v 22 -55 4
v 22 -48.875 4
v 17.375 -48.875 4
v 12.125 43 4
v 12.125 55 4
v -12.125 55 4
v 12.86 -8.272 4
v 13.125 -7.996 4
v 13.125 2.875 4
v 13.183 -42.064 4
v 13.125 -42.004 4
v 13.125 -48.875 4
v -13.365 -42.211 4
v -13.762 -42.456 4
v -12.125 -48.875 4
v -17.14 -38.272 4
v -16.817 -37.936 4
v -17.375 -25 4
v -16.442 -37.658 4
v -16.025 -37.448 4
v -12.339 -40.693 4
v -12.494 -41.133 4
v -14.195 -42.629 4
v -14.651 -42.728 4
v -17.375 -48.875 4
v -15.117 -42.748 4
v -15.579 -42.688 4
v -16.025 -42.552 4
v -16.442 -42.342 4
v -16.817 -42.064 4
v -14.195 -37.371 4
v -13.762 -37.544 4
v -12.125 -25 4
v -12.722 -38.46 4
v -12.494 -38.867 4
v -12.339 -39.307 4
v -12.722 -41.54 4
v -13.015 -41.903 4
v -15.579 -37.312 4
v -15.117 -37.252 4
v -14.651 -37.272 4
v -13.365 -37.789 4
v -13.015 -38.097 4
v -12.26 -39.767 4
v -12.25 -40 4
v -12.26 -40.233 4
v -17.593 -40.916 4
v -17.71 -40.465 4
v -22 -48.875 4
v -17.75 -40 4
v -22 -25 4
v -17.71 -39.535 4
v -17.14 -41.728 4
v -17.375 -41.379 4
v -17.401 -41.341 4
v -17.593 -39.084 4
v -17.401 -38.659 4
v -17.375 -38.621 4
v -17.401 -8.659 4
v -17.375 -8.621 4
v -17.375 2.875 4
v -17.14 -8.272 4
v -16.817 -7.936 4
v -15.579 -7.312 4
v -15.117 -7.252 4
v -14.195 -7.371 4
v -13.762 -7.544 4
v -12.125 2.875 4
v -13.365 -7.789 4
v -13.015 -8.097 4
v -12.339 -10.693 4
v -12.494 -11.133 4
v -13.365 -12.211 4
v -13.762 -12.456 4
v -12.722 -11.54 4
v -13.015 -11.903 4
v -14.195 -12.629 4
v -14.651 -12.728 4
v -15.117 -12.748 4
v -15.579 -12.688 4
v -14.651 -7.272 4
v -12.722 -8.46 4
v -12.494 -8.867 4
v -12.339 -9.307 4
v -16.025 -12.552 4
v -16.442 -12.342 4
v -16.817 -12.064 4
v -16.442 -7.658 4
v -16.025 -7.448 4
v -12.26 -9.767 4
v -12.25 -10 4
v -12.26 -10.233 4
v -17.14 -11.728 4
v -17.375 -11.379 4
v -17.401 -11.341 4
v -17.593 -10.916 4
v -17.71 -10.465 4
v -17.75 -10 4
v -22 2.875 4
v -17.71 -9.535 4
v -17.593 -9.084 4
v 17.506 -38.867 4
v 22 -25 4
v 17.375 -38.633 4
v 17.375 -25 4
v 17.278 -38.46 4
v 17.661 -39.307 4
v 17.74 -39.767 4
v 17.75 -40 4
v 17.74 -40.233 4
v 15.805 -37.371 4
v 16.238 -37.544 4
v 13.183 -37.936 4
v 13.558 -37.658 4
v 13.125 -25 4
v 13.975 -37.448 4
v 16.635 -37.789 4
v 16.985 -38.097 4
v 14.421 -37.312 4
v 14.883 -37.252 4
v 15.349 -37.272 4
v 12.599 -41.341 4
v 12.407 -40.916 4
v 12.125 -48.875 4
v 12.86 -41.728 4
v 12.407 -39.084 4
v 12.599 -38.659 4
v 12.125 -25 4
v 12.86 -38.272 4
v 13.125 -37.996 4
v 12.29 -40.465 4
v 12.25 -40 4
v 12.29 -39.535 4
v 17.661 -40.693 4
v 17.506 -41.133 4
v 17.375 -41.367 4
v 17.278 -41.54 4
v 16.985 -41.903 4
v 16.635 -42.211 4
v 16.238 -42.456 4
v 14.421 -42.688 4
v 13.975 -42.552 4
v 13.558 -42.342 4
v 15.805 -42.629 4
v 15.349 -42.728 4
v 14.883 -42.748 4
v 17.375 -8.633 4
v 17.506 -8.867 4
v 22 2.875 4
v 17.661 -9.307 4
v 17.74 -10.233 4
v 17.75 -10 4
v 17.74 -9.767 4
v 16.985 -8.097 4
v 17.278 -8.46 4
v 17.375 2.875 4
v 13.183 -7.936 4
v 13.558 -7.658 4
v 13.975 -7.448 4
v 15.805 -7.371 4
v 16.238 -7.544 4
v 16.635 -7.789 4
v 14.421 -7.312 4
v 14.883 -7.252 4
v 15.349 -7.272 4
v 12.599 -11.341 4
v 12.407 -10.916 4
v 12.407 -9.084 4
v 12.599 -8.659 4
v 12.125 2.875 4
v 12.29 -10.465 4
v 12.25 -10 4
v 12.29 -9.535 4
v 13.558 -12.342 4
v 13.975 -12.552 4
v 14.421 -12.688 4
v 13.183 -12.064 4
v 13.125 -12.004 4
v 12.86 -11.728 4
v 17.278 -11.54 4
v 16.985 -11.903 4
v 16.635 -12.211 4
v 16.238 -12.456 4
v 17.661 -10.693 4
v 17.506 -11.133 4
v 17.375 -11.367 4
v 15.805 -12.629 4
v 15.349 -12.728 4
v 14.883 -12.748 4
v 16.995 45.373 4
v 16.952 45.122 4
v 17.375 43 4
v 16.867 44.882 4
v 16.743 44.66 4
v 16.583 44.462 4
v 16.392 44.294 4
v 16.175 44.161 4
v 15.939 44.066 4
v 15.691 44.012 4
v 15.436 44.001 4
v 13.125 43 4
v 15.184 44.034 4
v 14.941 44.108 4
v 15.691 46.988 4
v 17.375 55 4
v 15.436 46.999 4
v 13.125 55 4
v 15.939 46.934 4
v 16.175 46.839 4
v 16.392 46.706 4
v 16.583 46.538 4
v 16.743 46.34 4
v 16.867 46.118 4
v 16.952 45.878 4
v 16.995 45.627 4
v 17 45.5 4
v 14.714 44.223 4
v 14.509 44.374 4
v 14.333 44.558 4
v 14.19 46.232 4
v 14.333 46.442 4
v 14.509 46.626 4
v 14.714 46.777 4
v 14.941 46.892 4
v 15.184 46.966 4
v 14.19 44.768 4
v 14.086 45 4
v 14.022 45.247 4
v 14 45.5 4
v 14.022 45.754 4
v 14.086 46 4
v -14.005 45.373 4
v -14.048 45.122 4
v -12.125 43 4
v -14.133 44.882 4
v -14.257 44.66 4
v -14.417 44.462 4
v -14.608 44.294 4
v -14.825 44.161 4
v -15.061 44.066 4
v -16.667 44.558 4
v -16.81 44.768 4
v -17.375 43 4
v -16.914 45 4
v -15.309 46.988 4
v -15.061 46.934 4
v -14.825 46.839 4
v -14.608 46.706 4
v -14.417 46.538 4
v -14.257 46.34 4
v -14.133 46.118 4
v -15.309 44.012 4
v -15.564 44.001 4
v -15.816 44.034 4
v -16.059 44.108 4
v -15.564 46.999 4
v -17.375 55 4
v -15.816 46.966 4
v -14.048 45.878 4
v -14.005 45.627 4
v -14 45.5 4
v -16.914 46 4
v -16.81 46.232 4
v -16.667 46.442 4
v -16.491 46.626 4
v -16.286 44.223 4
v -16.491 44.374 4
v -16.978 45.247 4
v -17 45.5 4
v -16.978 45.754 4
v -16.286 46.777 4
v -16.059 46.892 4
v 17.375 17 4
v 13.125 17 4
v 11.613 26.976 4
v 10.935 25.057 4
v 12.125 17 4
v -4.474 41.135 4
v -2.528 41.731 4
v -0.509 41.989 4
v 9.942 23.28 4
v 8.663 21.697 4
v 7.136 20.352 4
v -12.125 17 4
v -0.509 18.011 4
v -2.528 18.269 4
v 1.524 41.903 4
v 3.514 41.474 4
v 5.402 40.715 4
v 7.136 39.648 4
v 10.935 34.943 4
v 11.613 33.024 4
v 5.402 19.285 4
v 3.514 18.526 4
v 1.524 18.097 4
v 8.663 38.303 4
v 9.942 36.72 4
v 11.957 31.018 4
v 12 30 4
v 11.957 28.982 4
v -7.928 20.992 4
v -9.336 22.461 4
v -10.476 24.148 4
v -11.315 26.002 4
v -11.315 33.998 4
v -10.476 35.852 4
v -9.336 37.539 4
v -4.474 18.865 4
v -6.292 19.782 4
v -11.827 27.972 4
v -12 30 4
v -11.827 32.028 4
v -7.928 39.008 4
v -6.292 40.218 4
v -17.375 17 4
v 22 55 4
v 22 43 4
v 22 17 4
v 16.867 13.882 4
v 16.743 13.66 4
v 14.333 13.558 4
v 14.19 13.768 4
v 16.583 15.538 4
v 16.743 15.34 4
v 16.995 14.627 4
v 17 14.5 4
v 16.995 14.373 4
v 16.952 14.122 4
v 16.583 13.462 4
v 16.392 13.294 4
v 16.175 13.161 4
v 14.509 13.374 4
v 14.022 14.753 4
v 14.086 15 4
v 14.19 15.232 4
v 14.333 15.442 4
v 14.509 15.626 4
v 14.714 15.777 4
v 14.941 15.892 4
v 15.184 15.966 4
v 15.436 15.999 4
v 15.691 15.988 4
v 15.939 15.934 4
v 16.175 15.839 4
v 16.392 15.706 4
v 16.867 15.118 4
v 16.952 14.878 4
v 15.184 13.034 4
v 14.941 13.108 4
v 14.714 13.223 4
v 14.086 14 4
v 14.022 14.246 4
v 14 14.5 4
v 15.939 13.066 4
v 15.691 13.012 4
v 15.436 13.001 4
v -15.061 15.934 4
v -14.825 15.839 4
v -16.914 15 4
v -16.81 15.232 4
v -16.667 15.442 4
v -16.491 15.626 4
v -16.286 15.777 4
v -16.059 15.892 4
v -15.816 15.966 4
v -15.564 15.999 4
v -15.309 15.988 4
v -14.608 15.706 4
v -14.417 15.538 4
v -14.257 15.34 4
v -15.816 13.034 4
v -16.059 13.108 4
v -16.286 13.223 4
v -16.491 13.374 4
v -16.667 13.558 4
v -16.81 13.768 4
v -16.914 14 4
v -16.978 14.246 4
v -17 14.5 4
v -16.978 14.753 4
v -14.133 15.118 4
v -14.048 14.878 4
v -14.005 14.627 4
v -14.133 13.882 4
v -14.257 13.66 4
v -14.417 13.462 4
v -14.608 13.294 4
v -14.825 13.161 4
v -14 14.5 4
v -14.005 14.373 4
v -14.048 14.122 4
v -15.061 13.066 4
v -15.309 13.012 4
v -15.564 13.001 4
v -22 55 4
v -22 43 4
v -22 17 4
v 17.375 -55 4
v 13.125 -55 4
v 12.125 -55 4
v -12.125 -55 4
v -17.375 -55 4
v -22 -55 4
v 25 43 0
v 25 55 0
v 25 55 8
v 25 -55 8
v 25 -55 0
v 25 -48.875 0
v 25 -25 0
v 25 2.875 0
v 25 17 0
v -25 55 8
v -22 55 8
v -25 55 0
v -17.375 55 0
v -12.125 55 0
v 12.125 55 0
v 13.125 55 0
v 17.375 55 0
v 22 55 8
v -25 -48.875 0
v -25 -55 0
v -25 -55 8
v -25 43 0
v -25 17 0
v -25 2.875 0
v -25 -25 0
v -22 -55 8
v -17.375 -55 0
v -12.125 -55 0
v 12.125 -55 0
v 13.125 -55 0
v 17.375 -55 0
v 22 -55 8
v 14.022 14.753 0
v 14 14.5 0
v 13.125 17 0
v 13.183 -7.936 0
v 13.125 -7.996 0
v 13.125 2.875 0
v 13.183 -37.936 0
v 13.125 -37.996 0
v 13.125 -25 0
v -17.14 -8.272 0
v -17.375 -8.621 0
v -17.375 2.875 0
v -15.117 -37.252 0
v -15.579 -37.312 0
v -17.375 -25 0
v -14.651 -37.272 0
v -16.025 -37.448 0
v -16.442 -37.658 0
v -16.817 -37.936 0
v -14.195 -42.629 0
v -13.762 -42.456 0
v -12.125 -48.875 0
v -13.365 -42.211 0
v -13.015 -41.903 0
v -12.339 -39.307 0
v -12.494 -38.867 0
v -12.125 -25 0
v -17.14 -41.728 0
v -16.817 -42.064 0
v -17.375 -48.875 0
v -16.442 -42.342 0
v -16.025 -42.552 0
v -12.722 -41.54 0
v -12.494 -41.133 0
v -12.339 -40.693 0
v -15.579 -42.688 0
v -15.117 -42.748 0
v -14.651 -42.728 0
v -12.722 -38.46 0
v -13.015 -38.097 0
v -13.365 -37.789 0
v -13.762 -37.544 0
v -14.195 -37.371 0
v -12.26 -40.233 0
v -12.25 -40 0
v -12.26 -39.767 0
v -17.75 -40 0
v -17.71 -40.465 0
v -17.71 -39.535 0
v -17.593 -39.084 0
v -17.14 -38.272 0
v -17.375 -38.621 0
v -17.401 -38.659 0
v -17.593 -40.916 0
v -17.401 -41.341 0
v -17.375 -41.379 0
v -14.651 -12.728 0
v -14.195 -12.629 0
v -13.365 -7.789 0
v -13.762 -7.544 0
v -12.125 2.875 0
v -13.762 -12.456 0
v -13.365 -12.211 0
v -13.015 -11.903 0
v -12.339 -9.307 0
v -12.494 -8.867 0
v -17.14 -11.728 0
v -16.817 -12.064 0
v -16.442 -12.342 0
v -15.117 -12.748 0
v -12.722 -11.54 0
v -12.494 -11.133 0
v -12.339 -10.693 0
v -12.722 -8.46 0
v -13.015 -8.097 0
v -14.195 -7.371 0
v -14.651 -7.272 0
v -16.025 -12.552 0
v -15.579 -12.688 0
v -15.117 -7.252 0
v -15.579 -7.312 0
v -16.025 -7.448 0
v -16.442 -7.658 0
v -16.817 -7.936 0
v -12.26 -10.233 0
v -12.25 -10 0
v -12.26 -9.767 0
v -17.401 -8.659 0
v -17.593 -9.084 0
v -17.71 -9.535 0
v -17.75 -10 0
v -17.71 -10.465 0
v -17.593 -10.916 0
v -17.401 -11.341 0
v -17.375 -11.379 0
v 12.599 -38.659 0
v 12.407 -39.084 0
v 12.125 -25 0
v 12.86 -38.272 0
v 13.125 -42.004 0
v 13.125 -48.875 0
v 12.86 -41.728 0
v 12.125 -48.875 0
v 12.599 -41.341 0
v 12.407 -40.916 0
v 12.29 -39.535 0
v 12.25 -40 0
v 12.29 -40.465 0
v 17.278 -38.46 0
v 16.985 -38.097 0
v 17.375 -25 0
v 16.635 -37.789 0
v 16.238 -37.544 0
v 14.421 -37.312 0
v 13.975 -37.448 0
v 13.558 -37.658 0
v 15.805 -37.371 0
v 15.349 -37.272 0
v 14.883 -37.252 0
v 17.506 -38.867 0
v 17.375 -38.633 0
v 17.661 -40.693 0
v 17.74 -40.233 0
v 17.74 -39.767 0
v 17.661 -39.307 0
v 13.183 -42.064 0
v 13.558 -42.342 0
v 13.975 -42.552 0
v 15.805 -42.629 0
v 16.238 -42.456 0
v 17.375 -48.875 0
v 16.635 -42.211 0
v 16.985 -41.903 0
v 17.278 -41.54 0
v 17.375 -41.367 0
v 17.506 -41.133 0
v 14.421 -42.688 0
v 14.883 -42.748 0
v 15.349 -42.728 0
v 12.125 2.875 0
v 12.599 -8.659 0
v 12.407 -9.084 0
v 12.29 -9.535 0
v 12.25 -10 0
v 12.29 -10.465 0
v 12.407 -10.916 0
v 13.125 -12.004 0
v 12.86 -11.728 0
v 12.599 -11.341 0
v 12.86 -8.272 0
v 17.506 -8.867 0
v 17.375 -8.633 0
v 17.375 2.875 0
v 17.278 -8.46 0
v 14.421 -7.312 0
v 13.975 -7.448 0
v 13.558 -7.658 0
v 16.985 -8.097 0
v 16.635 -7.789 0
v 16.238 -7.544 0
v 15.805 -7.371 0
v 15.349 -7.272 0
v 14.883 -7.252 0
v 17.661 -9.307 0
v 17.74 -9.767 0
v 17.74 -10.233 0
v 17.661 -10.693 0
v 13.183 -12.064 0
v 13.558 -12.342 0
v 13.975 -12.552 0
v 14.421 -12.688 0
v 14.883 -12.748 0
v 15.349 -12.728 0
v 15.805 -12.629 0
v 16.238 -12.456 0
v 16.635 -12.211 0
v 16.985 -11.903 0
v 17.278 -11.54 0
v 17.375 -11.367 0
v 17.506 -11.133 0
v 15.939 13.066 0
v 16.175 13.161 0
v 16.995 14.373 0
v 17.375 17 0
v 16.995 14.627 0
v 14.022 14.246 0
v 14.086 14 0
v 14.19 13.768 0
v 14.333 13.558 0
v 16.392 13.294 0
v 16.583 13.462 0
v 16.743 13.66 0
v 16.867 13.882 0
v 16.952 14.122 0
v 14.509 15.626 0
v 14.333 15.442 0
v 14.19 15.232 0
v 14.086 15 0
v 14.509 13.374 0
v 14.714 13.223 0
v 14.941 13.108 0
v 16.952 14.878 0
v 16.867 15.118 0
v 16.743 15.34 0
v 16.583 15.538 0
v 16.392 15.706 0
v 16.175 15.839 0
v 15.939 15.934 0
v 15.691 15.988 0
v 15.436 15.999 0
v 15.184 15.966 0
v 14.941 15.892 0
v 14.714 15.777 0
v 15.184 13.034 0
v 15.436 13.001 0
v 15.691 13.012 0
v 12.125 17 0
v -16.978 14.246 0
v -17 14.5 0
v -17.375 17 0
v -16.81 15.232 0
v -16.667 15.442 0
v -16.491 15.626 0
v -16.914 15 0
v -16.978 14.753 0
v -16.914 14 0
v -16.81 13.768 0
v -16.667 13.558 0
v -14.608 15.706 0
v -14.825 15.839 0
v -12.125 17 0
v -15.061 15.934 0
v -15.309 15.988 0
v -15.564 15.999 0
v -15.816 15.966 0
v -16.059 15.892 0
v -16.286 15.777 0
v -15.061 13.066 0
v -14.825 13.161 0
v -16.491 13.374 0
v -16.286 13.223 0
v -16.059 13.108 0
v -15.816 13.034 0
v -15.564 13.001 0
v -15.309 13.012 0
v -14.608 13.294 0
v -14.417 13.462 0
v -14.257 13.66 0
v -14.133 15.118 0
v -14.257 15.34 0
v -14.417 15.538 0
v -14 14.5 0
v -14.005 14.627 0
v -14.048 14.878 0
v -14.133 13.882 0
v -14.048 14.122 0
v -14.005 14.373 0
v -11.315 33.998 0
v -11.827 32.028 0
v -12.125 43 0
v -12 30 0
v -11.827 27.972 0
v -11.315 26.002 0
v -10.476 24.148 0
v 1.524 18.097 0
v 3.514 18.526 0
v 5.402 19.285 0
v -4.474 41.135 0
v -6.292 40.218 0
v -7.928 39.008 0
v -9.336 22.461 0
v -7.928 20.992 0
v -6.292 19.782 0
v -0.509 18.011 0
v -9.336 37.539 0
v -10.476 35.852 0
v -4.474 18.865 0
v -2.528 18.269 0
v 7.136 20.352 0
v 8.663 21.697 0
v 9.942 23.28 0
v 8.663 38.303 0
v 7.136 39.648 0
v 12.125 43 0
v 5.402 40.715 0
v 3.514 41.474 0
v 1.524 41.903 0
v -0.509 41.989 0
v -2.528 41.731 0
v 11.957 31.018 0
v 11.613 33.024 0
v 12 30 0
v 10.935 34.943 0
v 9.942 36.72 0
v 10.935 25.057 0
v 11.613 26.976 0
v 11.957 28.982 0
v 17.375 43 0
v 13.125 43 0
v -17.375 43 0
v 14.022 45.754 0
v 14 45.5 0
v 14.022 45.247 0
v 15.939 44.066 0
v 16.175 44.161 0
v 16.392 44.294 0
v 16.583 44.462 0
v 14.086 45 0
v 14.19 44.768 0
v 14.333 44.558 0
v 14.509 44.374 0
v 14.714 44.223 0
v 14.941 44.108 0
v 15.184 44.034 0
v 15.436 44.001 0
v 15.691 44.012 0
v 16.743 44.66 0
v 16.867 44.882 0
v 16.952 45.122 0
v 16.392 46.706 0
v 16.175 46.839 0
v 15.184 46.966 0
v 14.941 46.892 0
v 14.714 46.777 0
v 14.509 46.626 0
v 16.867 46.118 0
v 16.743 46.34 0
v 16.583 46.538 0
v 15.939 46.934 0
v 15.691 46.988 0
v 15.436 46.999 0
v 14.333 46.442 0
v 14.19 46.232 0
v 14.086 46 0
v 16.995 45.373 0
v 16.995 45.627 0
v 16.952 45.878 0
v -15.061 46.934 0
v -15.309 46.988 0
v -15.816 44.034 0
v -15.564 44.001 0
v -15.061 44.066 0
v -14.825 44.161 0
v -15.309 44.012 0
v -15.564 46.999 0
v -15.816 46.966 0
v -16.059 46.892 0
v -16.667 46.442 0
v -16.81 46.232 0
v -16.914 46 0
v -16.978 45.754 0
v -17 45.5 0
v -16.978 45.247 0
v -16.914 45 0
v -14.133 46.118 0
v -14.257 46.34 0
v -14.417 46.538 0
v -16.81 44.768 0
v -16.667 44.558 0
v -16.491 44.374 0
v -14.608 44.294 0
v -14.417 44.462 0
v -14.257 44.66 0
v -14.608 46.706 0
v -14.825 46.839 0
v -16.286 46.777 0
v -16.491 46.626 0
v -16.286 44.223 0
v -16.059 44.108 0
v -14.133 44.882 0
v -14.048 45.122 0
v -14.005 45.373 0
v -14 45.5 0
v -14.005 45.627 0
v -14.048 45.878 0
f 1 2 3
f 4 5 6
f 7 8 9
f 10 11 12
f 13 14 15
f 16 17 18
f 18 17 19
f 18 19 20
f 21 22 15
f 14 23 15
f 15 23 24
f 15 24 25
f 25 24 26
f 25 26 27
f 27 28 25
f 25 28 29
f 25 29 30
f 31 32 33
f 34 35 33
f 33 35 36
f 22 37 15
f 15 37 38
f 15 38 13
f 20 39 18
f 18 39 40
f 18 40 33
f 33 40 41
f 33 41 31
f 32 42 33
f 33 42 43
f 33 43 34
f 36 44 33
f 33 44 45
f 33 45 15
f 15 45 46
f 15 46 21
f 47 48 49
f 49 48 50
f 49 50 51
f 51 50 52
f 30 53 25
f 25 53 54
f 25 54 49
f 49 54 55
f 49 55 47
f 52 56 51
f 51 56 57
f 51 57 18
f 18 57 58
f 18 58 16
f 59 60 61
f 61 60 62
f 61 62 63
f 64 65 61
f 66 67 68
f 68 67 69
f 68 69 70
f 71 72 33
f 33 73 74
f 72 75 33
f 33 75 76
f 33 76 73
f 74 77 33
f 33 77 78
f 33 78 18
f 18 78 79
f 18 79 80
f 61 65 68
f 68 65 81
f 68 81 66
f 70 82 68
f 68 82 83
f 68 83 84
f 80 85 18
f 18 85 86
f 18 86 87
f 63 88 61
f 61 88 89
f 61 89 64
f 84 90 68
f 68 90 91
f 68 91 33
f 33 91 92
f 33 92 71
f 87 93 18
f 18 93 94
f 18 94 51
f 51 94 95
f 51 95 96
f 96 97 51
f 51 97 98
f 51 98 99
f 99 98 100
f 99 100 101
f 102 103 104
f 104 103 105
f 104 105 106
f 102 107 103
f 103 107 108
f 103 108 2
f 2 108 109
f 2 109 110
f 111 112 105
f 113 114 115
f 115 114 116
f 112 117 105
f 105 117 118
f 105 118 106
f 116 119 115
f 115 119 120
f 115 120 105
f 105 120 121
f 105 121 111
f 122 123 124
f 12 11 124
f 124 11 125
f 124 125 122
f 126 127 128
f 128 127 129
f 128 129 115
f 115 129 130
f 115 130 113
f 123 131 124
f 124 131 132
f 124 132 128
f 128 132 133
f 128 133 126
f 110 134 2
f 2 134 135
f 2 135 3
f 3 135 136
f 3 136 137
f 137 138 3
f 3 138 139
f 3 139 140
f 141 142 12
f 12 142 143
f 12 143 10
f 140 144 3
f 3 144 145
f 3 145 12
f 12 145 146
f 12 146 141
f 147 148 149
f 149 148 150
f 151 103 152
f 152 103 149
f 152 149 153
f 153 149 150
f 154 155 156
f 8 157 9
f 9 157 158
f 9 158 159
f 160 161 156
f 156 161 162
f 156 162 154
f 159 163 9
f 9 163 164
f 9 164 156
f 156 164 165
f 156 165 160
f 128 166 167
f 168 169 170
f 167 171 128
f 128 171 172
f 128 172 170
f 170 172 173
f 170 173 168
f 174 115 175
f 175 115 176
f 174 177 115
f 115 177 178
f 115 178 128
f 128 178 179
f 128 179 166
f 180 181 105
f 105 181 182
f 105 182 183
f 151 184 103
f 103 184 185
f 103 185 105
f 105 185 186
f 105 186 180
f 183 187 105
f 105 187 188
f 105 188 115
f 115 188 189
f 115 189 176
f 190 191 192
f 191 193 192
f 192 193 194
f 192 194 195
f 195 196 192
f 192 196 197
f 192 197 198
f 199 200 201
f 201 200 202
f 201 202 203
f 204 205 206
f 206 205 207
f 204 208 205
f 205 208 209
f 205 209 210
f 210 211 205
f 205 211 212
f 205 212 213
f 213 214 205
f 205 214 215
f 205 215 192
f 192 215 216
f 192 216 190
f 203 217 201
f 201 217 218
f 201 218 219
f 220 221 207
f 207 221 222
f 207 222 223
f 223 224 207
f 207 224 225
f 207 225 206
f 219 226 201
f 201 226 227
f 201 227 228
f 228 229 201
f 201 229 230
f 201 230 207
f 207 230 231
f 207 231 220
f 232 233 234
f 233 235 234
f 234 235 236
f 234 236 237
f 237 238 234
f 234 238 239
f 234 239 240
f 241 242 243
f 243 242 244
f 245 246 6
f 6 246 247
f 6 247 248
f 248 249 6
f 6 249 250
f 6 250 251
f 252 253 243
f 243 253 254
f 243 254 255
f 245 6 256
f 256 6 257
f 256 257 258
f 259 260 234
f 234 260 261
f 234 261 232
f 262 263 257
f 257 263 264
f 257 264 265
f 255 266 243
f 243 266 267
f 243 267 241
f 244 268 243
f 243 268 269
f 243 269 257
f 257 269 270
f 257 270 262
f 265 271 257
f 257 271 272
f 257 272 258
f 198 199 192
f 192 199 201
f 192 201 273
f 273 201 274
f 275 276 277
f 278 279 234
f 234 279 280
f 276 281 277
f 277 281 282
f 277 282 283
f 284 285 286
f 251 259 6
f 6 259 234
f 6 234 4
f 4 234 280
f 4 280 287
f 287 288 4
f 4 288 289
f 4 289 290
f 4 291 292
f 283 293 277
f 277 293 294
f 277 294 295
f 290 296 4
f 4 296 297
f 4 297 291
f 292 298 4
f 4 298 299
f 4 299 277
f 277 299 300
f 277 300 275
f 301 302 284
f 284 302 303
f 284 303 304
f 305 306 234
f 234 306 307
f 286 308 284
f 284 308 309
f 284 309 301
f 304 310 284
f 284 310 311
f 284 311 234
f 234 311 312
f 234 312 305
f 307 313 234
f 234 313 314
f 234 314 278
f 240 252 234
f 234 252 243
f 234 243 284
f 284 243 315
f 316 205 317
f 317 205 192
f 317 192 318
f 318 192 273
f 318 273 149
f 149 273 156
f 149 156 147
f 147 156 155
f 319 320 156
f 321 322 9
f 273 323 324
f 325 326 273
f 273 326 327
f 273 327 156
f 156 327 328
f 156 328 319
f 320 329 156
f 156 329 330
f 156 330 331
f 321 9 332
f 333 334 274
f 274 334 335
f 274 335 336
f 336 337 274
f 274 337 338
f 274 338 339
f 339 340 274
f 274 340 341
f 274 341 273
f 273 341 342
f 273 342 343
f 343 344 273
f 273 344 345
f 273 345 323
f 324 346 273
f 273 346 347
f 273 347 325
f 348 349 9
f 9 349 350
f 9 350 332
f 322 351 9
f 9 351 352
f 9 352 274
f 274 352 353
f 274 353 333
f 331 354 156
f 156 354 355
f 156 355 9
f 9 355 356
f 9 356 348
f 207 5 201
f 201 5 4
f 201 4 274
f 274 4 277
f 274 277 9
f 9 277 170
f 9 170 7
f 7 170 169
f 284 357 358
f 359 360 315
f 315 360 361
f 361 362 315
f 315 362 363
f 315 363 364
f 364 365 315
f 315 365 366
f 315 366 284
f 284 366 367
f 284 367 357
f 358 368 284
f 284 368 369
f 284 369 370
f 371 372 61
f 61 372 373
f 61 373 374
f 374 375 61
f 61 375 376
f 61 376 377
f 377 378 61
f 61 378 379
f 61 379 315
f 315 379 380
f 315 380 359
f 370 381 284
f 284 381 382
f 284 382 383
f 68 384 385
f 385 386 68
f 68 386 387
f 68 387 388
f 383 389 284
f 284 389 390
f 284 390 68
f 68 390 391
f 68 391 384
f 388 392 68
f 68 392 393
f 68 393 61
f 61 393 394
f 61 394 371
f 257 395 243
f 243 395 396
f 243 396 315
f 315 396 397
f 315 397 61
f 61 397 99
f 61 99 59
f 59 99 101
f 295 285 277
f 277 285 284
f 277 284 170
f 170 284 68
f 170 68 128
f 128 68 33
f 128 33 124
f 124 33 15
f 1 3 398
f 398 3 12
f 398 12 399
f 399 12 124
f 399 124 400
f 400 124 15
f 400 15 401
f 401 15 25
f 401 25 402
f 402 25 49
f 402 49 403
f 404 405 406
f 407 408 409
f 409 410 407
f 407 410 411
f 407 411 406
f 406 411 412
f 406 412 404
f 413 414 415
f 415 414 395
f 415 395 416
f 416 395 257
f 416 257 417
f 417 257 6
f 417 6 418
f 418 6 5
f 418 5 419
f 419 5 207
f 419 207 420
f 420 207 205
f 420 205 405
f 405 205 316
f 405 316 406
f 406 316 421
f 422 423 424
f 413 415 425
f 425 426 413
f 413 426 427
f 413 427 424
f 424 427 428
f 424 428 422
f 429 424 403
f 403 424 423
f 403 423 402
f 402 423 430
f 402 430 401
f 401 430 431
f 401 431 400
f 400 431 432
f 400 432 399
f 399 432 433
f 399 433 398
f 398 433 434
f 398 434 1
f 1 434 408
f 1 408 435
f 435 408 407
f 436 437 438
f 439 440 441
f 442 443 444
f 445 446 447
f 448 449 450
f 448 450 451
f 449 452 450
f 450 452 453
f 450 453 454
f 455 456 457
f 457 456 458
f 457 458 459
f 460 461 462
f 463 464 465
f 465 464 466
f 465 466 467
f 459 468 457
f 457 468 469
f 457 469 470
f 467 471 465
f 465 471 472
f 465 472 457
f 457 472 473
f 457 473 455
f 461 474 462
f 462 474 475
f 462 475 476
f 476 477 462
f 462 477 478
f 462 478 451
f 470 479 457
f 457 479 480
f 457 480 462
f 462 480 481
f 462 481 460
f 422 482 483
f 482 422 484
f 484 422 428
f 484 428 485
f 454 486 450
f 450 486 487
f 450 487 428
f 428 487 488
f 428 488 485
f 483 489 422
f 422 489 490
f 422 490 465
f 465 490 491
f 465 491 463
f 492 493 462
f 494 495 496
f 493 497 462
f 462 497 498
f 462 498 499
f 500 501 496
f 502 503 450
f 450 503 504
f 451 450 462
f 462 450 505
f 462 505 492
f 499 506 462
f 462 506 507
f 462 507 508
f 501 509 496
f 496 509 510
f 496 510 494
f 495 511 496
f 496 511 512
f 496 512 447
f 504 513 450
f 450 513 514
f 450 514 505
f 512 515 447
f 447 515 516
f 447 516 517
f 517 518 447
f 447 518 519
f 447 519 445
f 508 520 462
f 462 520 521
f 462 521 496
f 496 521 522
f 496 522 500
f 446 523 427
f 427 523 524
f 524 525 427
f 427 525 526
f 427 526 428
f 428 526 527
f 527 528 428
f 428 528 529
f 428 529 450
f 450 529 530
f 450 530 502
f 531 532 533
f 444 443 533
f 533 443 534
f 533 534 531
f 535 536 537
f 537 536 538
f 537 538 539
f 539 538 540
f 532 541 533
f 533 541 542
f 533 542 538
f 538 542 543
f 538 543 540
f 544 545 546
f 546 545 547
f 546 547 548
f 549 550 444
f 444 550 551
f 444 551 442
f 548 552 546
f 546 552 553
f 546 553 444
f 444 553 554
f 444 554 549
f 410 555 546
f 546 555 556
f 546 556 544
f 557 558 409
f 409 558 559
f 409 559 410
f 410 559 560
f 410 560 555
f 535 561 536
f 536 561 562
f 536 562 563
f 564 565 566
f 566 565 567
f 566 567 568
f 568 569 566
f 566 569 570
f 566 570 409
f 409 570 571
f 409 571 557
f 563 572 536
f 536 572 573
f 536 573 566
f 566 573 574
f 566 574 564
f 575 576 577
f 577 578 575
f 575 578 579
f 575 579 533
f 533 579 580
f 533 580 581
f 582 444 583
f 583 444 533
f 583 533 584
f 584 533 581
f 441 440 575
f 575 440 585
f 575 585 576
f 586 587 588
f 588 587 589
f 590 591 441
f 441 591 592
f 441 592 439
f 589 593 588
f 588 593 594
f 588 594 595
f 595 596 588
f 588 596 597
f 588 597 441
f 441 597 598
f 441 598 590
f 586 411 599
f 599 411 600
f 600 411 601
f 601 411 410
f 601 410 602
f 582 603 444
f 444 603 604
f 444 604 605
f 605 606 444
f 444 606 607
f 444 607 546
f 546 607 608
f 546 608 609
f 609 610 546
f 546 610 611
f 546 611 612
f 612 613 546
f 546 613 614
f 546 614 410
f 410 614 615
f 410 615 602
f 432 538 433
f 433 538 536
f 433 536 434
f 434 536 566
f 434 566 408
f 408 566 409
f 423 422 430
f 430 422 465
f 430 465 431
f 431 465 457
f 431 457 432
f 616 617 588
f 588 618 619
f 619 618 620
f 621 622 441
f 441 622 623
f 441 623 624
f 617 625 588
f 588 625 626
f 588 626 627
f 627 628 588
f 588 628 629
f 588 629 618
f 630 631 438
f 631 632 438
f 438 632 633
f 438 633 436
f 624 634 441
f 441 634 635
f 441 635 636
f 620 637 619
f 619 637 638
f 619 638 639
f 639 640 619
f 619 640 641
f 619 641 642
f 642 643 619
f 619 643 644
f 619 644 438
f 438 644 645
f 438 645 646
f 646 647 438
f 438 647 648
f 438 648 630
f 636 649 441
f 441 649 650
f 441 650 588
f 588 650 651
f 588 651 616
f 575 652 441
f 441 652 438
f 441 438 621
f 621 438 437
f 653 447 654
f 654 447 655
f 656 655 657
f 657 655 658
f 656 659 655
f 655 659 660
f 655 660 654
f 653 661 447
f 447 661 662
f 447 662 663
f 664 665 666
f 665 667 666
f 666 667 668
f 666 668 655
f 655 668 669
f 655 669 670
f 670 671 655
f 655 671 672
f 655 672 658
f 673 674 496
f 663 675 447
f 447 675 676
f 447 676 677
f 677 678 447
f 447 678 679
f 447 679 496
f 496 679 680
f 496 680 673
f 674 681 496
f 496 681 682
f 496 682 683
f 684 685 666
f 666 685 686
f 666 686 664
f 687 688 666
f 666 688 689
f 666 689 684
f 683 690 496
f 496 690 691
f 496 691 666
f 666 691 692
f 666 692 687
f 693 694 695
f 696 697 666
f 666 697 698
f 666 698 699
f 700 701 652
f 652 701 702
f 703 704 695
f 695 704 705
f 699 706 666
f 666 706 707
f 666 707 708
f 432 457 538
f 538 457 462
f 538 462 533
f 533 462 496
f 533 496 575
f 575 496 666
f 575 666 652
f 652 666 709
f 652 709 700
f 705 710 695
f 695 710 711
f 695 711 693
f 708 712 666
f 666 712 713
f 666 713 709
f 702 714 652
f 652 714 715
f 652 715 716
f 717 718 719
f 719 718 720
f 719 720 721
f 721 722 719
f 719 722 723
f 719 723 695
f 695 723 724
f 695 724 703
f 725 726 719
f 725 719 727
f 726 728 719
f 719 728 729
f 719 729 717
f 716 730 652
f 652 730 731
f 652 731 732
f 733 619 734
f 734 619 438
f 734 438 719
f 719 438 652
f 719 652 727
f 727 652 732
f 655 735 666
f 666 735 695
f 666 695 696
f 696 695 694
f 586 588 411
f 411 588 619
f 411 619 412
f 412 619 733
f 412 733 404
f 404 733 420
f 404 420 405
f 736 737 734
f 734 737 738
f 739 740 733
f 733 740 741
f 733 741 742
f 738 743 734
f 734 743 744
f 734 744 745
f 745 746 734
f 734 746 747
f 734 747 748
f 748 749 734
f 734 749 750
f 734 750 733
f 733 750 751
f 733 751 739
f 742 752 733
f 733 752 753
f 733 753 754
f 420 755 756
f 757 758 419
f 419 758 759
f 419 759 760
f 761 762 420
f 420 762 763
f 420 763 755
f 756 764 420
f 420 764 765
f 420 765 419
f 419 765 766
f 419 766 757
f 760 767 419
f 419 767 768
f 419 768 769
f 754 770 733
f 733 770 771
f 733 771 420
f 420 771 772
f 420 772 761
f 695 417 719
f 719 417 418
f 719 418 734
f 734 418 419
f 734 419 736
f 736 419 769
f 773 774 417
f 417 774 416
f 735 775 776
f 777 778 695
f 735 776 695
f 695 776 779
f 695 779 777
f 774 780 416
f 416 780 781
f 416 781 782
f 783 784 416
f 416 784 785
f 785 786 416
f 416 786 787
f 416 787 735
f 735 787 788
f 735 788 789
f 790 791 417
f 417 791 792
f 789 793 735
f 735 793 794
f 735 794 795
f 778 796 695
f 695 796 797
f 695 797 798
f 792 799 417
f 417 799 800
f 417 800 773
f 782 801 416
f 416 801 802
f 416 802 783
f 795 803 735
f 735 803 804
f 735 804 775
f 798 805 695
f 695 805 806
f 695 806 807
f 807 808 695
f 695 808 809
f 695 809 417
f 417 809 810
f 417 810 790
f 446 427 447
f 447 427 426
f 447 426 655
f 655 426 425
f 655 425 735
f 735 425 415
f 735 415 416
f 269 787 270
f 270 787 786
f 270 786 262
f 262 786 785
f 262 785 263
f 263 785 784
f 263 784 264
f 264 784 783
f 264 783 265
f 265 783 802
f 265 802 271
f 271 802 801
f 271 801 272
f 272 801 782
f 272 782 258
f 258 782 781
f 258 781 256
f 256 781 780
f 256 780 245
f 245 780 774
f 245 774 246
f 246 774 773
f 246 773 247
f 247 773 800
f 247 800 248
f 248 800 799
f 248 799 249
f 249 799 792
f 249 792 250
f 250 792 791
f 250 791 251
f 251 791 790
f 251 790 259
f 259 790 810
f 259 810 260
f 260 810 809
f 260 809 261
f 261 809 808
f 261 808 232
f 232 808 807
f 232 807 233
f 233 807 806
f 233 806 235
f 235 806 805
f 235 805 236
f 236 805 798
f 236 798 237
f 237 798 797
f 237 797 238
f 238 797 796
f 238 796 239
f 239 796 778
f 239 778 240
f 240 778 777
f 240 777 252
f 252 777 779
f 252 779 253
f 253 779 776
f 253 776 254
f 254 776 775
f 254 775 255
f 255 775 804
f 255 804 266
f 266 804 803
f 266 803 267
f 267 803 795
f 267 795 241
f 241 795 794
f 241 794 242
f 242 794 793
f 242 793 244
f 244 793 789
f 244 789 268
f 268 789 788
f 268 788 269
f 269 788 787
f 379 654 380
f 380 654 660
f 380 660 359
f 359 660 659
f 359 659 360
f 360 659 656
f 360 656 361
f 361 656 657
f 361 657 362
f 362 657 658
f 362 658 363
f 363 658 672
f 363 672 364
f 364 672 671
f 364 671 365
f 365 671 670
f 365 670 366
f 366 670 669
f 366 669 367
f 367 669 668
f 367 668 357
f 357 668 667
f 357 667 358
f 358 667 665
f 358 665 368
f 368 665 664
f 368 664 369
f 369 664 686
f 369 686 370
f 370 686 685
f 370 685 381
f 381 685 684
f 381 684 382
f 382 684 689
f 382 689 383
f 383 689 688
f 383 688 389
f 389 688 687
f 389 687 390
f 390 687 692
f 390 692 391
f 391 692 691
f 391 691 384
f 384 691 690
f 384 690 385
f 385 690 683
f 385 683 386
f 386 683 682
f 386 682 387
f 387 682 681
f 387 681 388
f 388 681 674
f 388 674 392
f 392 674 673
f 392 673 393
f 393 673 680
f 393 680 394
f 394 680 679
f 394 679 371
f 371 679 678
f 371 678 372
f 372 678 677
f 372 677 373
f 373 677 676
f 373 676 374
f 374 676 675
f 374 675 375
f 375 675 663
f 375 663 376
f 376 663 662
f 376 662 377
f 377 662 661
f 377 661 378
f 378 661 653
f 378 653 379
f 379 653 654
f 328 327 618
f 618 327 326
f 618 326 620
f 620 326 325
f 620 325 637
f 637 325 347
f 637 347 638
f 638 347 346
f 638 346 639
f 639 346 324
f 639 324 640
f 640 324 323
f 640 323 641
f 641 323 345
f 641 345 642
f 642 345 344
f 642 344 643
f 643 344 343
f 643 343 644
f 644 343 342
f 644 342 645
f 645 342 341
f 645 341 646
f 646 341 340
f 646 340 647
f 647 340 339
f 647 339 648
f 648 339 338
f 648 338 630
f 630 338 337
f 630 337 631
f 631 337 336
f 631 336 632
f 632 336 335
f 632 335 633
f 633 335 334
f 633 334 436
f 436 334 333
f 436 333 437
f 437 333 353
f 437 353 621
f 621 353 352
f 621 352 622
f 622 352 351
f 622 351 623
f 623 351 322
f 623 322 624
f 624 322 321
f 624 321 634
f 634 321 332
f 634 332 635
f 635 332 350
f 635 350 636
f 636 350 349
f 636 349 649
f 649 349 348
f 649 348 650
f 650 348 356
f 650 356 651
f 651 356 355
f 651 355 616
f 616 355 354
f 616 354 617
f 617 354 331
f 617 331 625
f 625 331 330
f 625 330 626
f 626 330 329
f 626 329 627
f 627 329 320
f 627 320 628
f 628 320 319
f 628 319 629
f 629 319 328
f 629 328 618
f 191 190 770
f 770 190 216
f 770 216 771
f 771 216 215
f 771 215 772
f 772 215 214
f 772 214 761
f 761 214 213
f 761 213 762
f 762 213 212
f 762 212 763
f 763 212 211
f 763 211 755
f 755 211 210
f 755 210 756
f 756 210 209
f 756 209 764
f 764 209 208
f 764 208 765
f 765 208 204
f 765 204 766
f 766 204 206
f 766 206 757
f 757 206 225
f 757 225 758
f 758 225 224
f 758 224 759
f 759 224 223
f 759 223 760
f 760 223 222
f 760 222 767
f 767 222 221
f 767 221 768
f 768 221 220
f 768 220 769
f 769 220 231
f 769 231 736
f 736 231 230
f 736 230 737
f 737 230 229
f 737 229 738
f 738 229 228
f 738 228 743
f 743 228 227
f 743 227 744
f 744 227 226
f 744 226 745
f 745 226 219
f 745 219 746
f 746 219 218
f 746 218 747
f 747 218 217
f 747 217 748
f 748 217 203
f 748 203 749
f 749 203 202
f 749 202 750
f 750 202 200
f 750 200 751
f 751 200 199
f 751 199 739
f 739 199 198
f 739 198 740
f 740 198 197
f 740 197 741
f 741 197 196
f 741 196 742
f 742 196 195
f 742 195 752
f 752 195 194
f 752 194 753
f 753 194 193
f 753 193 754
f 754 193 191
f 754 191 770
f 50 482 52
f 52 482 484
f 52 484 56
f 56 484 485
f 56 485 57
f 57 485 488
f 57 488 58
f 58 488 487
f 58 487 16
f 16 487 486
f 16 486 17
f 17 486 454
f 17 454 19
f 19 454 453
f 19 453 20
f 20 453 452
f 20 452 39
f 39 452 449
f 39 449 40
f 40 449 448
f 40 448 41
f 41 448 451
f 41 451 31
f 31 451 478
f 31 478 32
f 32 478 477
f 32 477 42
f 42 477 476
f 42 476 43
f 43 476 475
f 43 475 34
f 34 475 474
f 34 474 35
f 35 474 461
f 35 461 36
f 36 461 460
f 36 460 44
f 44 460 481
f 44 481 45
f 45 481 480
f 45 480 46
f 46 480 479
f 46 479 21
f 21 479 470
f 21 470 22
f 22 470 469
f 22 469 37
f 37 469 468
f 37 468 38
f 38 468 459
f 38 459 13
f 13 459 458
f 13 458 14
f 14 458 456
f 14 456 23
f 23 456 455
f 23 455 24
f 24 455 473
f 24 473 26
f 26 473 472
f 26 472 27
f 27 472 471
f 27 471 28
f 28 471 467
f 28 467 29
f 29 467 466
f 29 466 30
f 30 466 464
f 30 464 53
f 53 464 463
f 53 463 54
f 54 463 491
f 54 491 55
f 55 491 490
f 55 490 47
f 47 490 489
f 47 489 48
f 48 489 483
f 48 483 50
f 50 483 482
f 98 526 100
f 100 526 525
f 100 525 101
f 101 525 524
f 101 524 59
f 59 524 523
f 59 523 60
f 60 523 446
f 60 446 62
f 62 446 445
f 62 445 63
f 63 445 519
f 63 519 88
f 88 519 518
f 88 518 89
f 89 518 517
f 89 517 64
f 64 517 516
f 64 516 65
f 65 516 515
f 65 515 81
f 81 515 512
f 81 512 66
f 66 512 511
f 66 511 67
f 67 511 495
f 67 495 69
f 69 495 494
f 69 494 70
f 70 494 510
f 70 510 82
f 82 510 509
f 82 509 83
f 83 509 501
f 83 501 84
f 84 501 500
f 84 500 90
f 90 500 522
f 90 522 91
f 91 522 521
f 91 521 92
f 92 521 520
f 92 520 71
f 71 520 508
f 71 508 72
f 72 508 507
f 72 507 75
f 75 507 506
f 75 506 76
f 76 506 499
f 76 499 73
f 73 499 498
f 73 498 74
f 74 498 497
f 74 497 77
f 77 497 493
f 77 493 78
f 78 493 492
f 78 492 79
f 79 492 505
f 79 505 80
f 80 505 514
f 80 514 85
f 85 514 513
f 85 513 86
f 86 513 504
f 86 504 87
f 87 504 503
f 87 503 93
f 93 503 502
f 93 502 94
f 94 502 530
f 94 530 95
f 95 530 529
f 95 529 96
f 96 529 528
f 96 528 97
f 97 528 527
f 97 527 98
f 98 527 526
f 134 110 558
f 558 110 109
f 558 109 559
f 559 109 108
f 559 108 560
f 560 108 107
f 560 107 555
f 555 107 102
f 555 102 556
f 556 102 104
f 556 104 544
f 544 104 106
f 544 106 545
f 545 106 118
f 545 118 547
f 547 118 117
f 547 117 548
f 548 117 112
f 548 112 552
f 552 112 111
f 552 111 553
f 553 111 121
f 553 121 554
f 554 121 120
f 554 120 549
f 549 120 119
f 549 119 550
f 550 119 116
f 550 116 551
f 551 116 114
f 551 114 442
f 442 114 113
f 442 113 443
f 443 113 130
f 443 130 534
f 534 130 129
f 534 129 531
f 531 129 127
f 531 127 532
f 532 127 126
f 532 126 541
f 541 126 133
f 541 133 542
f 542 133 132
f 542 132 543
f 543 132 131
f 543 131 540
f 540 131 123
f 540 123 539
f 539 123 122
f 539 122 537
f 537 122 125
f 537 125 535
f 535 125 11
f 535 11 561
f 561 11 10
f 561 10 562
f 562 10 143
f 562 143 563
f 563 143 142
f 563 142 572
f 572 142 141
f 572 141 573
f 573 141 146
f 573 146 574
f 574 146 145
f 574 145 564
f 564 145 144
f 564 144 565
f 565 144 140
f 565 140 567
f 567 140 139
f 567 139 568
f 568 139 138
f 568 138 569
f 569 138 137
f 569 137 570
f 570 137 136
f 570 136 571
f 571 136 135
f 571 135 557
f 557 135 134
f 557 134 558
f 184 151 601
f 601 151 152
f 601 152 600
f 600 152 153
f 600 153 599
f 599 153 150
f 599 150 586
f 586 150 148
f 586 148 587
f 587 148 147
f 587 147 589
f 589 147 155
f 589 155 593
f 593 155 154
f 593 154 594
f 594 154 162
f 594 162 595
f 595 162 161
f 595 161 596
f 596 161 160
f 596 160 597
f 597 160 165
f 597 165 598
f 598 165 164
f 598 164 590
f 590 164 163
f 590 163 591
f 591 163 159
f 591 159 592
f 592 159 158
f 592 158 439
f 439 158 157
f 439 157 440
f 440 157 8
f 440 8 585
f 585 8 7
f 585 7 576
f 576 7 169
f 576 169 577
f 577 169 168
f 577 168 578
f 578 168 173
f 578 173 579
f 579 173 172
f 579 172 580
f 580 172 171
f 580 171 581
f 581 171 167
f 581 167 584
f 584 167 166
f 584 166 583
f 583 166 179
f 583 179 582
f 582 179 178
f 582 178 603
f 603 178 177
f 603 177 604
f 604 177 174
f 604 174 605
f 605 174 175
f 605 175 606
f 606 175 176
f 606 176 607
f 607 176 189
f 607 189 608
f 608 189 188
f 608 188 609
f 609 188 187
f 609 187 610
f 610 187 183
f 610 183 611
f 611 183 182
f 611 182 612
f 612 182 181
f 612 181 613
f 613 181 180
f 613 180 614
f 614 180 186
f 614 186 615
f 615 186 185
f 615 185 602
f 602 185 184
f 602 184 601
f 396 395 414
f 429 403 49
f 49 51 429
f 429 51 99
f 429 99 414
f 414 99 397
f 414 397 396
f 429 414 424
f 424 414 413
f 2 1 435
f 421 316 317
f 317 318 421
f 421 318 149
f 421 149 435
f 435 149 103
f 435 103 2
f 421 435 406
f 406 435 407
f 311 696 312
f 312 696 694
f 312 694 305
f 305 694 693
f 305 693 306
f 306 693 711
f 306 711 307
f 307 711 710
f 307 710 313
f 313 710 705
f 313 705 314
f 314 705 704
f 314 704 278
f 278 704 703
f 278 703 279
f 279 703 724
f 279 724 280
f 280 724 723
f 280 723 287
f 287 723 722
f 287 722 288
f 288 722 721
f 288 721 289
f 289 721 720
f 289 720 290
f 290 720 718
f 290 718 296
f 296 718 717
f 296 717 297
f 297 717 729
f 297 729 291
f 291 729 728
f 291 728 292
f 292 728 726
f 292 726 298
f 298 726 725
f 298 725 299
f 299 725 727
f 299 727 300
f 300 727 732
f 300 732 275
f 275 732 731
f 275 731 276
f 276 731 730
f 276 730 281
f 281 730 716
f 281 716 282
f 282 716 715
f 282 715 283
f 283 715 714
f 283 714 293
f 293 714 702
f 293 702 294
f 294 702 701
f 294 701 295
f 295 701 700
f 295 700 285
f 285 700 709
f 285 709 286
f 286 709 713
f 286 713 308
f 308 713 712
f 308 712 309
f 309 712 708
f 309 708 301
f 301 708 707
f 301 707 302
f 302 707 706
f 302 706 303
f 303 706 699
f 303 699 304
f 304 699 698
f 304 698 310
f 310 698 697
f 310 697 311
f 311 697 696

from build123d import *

# Parameters (mm, degrees)
SKETCH1_W           = 50
SKETCH1_H           = 110
BOSS_EXTRUDE1_DEPTH = 4
CUT_EXTRUDE1_REACH  = 62.548
SKETCH2_R           = 1.5
CUT_EXTRUDE2_REACH  = 62.548
SKETCH3_R           = 2.75
SKETCH4_W           = 3
SKETCH4_H           = 110
BOSS_EXTRUDE2_DEPTH = 8
CUT_EXTRUDE3_REACH  = 62.943
SKETCH5_R           = 12


with BuildPart() as part:
    # Sketch1 → Boss-Extrude1 (new body)
    with BuildSketch(Plane.XY):
        Rectangle(SKETCH1_W, SKETCH1_H)
    extrude(amount=BOSS_EXTRUDE1_DEPTH)

    # Sketch2 → Cut-Extrude1 (cut, up to next)
    with BuildSketch(Plane.XY, mode=Mode.PRIVATE) as cut_extrude1_sk1:
        with Locations((-15.5, 45.5)):
            Circle(SKETCH2_R)
    cut_extrude1_tool1 = extrude(cut_extrude1_sk1.sketch, amount=CUT_EXTRUDE1_REACH, mode=Mode.PRIVATE) & part.part
    # Sketch2 → Cut-Extrude1 (cut, up to next)
    with BuildSketch(Plane.XY, mode=Mode.PRIVATE) as cut_extrude1_sk2:
        with Locations((-15.5, 14.5)):
            Circle(SKETCH2_R)
    cut_extrude1_tool2 = extrude(cut_extrude1_sk2.sketch, amount=CUT_EXTRUDE1_REACH, mode=Mode.PRIVATE) & part.part
    # Sketch2 → Cut-Extrude1 (cut, up to next)
    with BuildSketch(Plane.XY, mode=Mode.PRIVATE) as cut_extrude1_sk3:
        with Locations(Location((15.5, 14.5, 0), (0, 0, 180))):
            Circle(SKETCH2_R)
    cut_extrude1_tool3 = extrude(cut_extrude1_sk3.sketch, amount=CUT_EXTRUDE1_REACH, mode=Mode.PRIVATE) & part.part
    # Sketch2 → Cut-Extrude1 (cut, up to next)
    with BuildSketch(Plane.XY, mode=Mode.PRIVATE) as cut_extrude1_sk4:
        with Locations(Location((15.5, 45.5, 0), (0, 0, 180))):
            Circle(SKETCH2_R)
    cut_extrude1_tool4 = extrude(cut_extrude1_sk4.sketch, amount=CUT_EXTRUDE1_REACH, mode=Mode.PRIVATE) & part.part
    add(cut_extrude1_tool1.solids().sort_by_distance((-15.5, 45.5, 0))[0], mode=Mode.SUBTRACT)
    add(cut_extrude1_tool2.solids().sort_by_distance((-15.5, 14.5, 0))[0], mode=Mode.SUBTRACT)
    add(cut_extrude1_tool3.solids().sort_by_distance((15.5, 14.5, 0))[0], mode=Mode.SUBTRACT)
    add(cut_extrude1_tool4.solids().sort_by_distance((15.5, 45.5, 0))[0], mode=Mode.SUBTRACT)

    # Sketch3 → Cut-Extrude2 (cut, up to next)
    with BuildSketch(Plane.XY, mode=Mode.PRIVATE) as cut_extrude2_sk1:
        with Locations((-15, -40)):
            Circle(SKETCH3_R)
    cut_extrude2_tool1 = extrude(cut_extrude2_sk1.sketch, amount=CUT_EXTRUDE2_REACH, mode=Mode.PRIVATE) & part.part
    # Sketch3 → Cut-Extrude2 (cut, up to next)
    with BuildSketch(Plane.XY, mode=Mode.PRIVATE) as cut_extrude2_sk2:
        with Locations((-15, -10)):
            Circle(SKETCH3_R)
    cut_extrude2_tool2 = extrude(cut_extrude2_sk2.sketch, amount=CUT_EXTRUDE2_REACH, mode=Mode.PRIVATE) & part.part
    # Sketch3 → Cut-Extrude2 (cut, up to next)
    with BuildSketch(Plane.XY, mode=Mode.PRIVATE) as cut_extrude2_sk3:
        with Locations(Location((15, -40, 0), (0, 0, 180))):
            Circle(SKETCH3_R)
    cut_extrude2_tool3 = extrude(cut_extrude2_sk3.sketch, amount=CUT_EXTRUDE2_REACH, mode=Mode.PRIVATE) & part.part
    # Sketch3 → Cut-Extrude2 (cut, up to next)
    with BuildSketch(Plane.XY, mode=Mode.PRIVATE) as cut_extrude2_sk4:
        with Locations(Location((15, -10, 0), (0, 0, 180))):
            Circle(SKETCH3_R)
    cut_extrude2_tool4 = extrude(cut_extrude2_sk4.sketch, amount=CUT_EXTRUDE2_REACH, mode=Mode.PRIVATE) & part.part
    add(cut_extrude2_tool1.solids().sort_by_distance((-15, -40, 0))[0], mode=Mode.SUBTRACT)
    add(cut_extrude2_tool2.solids().sort_by_distance((-15, -10, 0))[0], mode=Mode.SUBTRACT)
    add(cut_extrude2_tool3.solids().sort_by_distance((15, -40, 0))[0], mode=Mode.SUBTRACT)
    add(cut_extrude2_tool4.solids().sort_by_distance((15, -10, 0))[0], mode=Mode.SUBTRACT)

    # Sketch4 → Boss-Extrude2 (add)
    with BuildSketch(Plane.XY):
        with Locations((-23.5, 0)):
            Rectangle(SKETCH4_W, SKETCH4_H)
        with Locations((23.5, 0)):
            Rectangle(SKETCH4_W, SKETCH4_H)
    extrude(amount=BOSS_EXTRUDE2_DEPTH)

    # Sketch5 → Cut-Extrude3 (cut, up to next)
    with BuildSketch(Plane.XY, mode=Mode.PRIVATE) as cut_extrude3_sk1:
        with Locations((0, 30)):
            Circle(SKETCH5_R)
    cut_extrude3_tool1 = extrude(cut_extrude3_sk1.sketch, amount=CUT_EXTRUDE3_REACH, mode=Mode.PRIVATE) & part.part
    add(cut_extrude3_tool1.solids().sort_by_distance((0, 30, 0))[0], mode=Mode.SUBTRACT)


solid = part.part
